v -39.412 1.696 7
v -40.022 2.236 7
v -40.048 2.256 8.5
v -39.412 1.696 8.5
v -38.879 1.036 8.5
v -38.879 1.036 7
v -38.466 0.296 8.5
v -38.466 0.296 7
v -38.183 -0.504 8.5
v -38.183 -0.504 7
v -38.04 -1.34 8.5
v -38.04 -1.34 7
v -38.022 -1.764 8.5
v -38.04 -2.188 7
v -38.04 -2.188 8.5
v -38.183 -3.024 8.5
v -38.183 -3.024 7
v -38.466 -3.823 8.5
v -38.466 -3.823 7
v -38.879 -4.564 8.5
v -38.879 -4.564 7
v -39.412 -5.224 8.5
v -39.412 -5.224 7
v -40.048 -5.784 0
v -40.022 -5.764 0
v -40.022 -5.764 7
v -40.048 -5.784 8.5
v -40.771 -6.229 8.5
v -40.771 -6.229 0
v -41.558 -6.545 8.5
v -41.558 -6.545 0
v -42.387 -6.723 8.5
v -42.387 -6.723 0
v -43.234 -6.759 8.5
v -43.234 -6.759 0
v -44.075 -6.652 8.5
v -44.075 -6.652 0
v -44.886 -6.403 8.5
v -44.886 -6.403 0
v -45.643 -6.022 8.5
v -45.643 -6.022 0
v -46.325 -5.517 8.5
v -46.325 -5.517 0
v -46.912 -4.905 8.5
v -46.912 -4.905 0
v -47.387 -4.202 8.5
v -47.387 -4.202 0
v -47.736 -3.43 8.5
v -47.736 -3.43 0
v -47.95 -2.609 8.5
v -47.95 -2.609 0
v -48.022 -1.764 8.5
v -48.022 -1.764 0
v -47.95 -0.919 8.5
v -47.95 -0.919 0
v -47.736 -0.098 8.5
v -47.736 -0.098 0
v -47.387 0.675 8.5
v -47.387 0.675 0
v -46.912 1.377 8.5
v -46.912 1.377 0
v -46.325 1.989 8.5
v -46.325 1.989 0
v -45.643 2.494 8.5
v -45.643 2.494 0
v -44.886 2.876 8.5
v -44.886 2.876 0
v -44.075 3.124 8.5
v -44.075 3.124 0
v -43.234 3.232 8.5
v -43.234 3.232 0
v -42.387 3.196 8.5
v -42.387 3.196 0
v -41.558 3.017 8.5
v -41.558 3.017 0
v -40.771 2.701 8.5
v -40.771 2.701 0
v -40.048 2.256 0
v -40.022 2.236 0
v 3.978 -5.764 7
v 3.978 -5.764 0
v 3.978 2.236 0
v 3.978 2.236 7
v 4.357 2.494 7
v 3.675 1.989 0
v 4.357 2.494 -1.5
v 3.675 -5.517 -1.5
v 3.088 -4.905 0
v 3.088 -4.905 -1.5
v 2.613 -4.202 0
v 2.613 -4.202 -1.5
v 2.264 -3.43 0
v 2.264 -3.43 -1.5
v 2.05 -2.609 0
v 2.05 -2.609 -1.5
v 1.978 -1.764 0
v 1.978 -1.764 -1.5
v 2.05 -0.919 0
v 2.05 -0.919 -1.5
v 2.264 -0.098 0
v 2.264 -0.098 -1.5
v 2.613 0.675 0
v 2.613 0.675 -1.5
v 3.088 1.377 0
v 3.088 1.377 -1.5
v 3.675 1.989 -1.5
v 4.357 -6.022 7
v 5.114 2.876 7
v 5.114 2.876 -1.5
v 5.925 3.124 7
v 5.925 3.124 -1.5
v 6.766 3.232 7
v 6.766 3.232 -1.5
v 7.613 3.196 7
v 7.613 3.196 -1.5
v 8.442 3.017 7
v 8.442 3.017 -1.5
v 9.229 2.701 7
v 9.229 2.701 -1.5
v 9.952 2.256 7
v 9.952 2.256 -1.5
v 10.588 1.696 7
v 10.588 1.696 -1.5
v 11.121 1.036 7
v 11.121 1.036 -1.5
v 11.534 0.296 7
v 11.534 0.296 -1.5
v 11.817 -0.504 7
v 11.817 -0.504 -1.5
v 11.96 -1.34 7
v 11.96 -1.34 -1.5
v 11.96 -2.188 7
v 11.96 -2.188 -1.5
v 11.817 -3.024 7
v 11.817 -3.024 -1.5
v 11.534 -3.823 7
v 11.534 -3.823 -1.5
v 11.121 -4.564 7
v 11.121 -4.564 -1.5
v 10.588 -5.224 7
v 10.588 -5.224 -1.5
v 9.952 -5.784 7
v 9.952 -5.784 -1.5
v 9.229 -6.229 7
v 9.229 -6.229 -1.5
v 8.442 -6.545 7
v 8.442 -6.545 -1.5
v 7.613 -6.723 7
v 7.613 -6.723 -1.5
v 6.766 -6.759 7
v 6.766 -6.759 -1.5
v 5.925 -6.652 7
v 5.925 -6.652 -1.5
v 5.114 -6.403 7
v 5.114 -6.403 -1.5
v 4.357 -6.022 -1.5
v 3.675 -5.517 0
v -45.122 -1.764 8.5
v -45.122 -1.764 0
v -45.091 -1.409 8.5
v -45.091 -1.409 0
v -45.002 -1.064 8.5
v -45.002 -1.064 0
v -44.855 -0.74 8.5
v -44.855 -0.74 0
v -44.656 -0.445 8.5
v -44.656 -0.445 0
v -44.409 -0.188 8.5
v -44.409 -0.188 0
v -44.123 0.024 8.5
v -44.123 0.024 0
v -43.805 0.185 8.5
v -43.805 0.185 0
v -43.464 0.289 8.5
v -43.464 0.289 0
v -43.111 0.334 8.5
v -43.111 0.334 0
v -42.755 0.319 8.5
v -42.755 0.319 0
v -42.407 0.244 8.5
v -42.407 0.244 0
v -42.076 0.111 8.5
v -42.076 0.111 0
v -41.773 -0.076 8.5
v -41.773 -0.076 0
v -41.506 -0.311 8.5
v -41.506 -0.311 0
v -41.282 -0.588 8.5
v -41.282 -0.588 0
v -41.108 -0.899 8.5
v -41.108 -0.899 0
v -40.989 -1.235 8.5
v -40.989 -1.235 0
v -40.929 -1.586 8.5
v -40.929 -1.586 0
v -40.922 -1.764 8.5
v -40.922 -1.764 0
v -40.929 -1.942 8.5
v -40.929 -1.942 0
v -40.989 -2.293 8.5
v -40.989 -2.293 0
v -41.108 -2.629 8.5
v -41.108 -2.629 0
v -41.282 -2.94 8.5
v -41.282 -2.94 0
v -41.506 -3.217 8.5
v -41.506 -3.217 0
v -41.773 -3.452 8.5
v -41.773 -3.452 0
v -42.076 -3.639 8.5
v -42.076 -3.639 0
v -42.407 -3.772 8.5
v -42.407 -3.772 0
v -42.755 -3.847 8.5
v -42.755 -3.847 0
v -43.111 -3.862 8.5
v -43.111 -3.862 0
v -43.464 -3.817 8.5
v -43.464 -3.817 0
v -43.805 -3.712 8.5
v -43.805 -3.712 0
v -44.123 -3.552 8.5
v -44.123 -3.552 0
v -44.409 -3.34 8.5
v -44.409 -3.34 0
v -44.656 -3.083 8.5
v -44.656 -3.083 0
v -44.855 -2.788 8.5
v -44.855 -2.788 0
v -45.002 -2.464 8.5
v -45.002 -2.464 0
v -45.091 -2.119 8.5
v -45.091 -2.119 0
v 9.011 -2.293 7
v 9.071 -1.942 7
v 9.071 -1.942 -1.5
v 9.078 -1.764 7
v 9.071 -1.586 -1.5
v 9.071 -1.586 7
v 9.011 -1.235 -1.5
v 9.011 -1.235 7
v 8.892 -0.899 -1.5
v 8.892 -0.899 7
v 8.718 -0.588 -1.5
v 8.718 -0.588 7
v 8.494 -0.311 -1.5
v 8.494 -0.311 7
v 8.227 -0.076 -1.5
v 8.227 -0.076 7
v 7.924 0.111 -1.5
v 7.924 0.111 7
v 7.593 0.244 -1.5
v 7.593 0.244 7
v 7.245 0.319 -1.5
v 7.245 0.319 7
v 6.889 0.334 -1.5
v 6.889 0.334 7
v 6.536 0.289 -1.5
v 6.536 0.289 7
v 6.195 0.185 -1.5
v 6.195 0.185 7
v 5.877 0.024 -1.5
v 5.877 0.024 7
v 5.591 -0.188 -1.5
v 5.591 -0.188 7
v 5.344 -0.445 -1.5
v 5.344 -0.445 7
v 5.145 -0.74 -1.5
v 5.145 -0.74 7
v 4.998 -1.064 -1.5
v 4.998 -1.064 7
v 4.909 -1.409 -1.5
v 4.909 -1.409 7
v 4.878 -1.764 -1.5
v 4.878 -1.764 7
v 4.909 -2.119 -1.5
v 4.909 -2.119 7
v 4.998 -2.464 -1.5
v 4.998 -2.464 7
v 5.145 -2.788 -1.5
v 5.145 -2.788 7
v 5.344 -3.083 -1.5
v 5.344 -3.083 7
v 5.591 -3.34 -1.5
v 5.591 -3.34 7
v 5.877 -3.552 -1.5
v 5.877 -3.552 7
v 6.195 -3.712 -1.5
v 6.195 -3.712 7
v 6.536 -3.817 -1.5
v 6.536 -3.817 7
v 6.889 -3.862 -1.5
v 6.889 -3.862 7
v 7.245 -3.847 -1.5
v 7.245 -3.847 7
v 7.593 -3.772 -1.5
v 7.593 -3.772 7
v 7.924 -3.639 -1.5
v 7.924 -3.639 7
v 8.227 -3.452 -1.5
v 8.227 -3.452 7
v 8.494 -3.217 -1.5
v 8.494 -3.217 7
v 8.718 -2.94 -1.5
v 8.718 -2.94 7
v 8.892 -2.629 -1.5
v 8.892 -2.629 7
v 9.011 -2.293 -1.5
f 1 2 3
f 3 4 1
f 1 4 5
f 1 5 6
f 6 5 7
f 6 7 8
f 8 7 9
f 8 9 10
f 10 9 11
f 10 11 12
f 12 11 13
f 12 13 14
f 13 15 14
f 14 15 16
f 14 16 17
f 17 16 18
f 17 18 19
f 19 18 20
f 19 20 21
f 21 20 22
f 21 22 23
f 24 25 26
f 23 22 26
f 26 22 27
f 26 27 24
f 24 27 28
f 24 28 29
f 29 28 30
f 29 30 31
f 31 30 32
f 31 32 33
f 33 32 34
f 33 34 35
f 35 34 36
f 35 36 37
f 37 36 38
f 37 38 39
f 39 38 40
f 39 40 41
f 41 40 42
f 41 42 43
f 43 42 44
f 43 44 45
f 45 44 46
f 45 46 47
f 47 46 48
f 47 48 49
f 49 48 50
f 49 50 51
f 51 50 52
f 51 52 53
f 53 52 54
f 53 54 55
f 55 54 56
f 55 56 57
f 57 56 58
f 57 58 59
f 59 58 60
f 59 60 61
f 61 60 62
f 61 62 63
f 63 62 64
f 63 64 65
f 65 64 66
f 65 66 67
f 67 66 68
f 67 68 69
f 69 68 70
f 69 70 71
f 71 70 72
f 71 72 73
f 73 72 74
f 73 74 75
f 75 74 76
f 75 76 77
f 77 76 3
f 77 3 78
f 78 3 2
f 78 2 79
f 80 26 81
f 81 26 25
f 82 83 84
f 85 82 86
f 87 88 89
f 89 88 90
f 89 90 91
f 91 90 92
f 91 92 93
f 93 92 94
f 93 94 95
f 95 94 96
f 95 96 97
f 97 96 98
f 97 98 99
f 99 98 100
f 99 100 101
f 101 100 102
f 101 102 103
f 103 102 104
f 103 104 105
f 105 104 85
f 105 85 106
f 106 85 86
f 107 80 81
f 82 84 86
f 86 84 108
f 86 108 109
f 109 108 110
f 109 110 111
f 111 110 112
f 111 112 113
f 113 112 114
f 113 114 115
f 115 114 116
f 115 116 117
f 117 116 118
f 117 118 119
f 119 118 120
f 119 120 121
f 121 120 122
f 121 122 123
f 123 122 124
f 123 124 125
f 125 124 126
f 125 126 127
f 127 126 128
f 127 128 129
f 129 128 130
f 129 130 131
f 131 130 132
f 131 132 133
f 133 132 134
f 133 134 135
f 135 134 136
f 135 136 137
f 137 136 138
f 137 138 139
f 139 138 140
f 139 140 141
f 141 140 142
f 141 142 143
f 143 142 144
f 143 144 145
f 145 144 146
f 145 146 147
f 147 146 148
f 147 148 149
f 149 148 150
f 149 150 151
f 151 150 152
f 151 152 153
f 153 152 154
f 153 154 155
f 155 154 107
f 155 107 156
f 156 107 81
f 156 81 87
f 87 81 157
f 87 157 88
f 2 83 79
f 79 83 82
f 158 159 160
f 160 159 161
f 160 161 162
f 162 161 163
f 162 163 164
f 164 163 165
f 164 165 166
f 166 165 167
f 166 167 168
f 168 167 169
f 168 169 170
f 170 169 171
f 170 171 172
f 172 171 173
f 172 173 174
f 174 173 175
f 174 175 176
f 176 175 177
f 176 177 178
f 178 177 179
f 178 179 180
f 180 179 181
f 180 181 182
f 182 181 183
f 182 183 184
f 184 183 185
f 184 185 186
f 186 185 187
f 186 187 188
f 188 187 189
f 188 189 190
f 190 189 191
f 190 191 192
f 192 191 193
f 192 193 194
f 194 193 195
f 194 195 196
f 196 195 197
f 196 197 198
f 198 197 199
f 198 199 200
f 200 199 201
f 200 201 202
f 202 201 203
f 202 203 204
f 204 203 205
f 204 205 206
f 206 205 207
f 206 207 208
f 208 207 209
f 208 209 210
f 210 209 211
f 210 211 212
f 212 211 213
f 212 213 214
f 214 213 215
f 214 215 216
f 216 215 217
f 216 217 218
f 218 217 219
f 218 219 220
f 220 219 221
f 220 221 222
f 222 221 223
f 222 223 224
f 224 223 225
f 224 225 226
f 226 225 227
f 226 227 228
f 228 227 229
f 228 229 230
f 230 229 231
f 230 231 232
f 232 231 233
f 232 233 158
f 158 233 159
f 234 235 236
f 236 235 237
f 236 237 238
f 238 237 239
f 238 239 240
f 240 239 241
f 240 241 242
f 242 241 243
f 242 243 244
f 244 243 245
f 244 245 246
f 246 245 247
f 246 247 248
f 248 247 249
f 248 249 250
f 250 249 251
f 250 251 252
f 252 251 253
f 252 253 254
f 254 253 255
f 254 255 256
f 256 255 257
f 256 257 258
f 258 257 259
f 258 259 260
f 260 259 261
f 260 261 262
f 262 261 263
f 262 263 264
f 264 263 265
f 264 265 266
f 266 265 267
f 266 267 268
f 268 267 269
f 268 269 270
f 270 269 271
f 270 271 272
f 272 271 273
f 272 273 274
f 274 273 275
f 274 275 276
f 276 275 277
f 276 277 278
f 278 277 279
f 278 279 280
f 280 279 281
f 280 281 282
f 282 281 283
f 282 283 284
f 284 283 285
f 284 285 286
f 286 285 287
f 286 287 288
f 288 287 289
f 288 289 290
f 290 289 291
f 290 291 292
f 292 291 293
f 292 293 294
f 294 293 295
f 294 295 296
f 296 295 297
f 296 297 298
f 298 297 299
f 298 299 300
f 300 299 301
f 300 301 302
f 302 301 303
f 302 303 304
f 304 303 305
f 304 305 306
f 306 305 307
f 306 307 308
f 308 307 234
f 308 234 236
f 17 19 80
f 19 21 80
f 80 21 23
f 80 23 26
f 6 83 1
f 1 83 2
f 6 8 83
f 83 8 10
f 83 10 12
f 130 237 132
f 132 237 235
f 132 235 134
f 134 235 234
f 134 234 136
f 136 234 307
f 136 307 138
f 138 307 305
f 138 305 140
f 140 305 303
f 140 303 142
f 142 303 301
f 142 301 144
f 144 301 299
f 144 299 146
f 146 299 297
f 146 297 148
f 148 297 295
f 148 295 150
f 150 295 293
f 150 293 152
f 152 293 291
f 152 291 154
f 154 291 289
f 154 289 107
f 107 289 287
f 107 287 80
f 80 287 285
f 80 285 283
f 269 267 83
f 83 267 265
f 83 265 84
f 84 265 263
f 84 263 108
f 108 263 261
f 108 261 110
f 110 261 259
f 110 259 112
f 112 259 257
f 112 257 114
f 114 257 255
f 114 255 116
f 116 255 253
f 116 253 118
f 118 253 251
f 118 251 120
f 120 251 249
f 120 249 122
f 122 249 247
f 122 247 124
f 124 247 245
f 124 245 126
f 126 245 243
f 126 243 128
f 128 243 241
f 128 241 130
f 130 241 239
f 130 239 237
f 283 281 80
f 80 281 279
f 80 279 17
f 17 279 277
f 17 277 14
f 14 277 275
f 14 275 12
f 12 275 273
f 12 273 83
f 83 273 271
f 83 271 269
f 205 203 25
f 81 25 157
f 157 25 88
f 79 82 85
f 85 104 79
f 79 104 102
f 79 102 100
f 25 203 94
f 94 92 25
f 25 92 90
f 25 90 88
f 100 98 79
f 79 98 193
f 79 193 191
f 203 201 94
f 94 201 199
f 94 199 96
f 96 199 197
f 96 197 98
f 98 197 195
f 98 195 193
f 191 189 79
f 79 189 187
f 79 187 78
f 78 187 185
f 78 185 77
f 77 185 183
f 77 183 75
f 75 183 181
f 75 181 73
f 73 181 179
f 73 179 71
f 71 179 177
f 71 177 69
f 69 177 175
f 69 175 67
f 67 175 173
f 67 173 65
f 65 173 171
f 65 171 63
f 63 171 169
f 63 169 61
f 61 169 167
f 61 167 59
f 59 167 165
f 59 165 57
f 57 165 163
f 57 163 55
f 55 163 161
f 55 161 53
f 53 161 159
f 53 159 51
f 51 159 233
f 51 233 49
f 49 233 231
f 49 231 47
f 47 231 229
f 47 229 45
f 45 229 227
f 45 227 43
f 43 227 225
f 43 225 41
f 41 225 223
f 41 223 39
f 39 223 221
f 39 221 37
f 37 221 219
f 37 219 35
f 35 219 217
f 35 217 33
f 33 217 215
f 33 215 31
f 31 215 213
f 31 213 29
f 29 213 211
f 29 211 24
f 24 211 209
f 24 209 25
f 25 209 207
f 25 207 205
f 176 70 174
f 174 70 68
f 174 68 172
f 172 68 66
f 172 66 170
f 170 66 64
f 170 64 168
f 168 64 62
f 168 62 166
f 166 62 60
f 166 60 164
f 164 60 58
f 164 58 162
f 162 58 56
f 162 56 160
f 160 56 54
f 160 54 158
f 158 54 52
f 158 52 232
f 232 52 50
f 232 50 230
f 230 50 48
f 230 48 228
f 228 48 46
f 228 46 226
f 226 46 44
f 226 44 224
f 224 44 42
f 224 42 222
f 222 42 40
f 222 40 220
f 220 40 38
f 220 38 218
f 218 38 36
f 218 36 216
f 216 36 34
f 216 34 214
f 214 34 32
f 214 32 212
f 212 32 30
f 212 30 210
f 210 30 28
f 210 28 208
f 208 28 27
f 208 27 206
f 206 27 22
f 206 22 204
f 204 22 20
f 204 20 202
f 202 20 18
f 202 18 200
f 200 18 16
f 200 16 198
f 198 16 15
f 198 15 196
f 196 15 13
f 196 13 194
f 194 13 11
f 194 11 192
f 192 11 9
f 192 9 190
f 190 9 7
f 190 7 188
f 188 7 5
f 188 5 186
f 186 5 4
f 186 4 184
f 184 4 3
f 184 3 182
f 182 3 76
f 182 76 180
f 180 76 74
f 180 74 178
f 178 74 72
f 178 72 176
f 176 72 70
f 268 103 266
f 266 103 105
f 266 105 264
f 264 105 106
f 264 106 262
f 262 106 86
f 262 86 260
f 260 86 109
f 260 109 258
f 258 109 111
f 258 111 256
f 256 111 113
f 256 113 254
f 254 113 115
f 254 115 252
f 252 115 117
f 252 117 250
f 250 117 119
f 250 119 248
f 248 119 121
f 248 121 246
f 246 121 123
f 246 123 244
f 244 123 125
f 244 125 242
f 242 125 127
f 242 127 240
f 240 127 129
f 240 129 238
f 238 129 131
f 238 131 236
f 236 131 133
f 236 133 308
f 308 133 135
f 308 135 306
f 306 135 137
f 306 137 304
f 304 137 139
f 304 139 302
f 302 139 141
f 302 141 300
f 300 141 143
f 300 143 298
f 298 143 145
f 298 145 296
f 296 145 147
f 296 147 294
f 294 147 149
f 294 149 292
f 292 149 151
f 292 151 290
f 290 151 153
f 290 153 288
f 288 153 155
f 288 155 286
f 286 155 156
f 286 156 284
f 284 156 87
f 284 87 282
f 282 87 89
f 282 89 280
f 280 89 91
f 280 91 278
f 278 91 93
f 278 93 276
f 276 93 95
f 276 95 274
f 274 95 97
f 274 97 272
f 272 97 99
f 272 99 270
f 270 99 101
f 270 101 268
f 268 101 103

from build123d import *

# Parameters (mm, degrees)
SKETCH2_R           = 2.1
BOSS_EXTRUDE1_DEPTH = 7
SKETCH3_R           = 5
SKETCH3_R_2         = 2.1
BOSS_EXTRUDE2_DEPTH = 1.5
SKETCH4_R           = 5
SKETCH4_R_2         = 2.1
BOSS_EXTRUDE3_DEPTH = 1.5


with BuildPart() as part:
    # Sketch2 → Boss-Extrude1 (new body)
    with BuildSketch(Plane.XY):
        with BuildLine():
            ThreePointArc((-40.021658011, 2.236067977), (-48.021658011, -1.763932023), (-40.021658011, -5.763932023))
            Line((-40.021658011, -5.763932023), (-40.021658011, 2.236067977))
        make_face()
        with Locations((-43.021658011, -1.763932023)):
            Circle(SKETCH2_R, mode=Mode.SUBTRACT)
        with BuildLine():
            Line((-40.021658011, 2.236067977), (-40.021658011, -5.763932023))
            ThreePointArc((-40.021658011, -5.763932023), (-38.549522056, -4), (-38.021658011, -1.763932023))
            ThreePointArc((-38.021658011, -1.763932023), (-38.549522056, 0.472135955), (-40.021658011, 2.236067977))
        make_face()
        with BuildLine():
            ThreePointArc((-38.021658011, -1.763932023), (-38.549522056, -4), (-40.021658011, -5.763932023))
            Line((-40.021658011, -5.763932023), (3.978341989, -5.763932023))
            ThreePointArc((3.978341989, -5.763932023), (1.978341989, -1.763932023), (3.978341989, 2.236067977))
            Line((3.978341989, 2.236067977), (-40.021658011, 2.236067977))
            ThreePointArc((-40.021658011, 2.236067977), (-38.549522056, 0.472135955), (-38.021658011, -1.763932023))
        make_face()
        with BuildLine():
            Line((3.978341989, 2.236067977), (3.978341989, -5.763932023))
            ThreePointArc((3.978341989, -5.763932023), (9.214409967, -6.236067977), (11.978341989, -1.763932023))
            ThreePointArc((11.978341989, -1.763932023), (9.214409967, 2.708203932), (3.978341989, 2.236067977))
        make_face()
        with Locations((6.978341989, -1.763932023)):
            Circle(SKETCH2_R, mode=Mode.SUBTRACT)
        with BuildLine():
            ThreePointArc((3.978341989, 2.236067977), (1.978341989, -1.763932023), (3.978341989, -5.763932023))
            Line((3.978341989, -5.763932023), (3.978341989, 2.236067977))
        make_face()
    extrude(amount=BOSS_EXTRUDE1_DEPTH)

    # Sketch3 → Boss-Extrude2 (add)
    with BuildSketch(Plane.XY.offset(7)):
        with Locations((-43.021658011, -1.763932023)):
            Circle(SKETCH3_R)
        with Locations((-43.021658011, -1.763932023)):
            Circle(SKETCH3_R_2, mode=Mode.SUBTRACT)
    extrude(amount=BOSS_EXTRUDE2_DEPTH)

    # Sketch4 → Boss-Extrude3 (add)
    with BuildSketch(Plane(origin=(0, 0, 0), x_dir=(-1, 0, 0), z_dir=(0, 0, -1))):
        with Locations((-6.978341989, -1.763932023)):
            Circle(SKETCH4_R)
        with Locations((-6.978341989, -1.763932023)):
            Circle(SKETCH4_R_2, mode=Mode.SUBTRACT)
    extrude(amount=BOSS_EXTRUDE3_DEPTH)


solid = part.part
